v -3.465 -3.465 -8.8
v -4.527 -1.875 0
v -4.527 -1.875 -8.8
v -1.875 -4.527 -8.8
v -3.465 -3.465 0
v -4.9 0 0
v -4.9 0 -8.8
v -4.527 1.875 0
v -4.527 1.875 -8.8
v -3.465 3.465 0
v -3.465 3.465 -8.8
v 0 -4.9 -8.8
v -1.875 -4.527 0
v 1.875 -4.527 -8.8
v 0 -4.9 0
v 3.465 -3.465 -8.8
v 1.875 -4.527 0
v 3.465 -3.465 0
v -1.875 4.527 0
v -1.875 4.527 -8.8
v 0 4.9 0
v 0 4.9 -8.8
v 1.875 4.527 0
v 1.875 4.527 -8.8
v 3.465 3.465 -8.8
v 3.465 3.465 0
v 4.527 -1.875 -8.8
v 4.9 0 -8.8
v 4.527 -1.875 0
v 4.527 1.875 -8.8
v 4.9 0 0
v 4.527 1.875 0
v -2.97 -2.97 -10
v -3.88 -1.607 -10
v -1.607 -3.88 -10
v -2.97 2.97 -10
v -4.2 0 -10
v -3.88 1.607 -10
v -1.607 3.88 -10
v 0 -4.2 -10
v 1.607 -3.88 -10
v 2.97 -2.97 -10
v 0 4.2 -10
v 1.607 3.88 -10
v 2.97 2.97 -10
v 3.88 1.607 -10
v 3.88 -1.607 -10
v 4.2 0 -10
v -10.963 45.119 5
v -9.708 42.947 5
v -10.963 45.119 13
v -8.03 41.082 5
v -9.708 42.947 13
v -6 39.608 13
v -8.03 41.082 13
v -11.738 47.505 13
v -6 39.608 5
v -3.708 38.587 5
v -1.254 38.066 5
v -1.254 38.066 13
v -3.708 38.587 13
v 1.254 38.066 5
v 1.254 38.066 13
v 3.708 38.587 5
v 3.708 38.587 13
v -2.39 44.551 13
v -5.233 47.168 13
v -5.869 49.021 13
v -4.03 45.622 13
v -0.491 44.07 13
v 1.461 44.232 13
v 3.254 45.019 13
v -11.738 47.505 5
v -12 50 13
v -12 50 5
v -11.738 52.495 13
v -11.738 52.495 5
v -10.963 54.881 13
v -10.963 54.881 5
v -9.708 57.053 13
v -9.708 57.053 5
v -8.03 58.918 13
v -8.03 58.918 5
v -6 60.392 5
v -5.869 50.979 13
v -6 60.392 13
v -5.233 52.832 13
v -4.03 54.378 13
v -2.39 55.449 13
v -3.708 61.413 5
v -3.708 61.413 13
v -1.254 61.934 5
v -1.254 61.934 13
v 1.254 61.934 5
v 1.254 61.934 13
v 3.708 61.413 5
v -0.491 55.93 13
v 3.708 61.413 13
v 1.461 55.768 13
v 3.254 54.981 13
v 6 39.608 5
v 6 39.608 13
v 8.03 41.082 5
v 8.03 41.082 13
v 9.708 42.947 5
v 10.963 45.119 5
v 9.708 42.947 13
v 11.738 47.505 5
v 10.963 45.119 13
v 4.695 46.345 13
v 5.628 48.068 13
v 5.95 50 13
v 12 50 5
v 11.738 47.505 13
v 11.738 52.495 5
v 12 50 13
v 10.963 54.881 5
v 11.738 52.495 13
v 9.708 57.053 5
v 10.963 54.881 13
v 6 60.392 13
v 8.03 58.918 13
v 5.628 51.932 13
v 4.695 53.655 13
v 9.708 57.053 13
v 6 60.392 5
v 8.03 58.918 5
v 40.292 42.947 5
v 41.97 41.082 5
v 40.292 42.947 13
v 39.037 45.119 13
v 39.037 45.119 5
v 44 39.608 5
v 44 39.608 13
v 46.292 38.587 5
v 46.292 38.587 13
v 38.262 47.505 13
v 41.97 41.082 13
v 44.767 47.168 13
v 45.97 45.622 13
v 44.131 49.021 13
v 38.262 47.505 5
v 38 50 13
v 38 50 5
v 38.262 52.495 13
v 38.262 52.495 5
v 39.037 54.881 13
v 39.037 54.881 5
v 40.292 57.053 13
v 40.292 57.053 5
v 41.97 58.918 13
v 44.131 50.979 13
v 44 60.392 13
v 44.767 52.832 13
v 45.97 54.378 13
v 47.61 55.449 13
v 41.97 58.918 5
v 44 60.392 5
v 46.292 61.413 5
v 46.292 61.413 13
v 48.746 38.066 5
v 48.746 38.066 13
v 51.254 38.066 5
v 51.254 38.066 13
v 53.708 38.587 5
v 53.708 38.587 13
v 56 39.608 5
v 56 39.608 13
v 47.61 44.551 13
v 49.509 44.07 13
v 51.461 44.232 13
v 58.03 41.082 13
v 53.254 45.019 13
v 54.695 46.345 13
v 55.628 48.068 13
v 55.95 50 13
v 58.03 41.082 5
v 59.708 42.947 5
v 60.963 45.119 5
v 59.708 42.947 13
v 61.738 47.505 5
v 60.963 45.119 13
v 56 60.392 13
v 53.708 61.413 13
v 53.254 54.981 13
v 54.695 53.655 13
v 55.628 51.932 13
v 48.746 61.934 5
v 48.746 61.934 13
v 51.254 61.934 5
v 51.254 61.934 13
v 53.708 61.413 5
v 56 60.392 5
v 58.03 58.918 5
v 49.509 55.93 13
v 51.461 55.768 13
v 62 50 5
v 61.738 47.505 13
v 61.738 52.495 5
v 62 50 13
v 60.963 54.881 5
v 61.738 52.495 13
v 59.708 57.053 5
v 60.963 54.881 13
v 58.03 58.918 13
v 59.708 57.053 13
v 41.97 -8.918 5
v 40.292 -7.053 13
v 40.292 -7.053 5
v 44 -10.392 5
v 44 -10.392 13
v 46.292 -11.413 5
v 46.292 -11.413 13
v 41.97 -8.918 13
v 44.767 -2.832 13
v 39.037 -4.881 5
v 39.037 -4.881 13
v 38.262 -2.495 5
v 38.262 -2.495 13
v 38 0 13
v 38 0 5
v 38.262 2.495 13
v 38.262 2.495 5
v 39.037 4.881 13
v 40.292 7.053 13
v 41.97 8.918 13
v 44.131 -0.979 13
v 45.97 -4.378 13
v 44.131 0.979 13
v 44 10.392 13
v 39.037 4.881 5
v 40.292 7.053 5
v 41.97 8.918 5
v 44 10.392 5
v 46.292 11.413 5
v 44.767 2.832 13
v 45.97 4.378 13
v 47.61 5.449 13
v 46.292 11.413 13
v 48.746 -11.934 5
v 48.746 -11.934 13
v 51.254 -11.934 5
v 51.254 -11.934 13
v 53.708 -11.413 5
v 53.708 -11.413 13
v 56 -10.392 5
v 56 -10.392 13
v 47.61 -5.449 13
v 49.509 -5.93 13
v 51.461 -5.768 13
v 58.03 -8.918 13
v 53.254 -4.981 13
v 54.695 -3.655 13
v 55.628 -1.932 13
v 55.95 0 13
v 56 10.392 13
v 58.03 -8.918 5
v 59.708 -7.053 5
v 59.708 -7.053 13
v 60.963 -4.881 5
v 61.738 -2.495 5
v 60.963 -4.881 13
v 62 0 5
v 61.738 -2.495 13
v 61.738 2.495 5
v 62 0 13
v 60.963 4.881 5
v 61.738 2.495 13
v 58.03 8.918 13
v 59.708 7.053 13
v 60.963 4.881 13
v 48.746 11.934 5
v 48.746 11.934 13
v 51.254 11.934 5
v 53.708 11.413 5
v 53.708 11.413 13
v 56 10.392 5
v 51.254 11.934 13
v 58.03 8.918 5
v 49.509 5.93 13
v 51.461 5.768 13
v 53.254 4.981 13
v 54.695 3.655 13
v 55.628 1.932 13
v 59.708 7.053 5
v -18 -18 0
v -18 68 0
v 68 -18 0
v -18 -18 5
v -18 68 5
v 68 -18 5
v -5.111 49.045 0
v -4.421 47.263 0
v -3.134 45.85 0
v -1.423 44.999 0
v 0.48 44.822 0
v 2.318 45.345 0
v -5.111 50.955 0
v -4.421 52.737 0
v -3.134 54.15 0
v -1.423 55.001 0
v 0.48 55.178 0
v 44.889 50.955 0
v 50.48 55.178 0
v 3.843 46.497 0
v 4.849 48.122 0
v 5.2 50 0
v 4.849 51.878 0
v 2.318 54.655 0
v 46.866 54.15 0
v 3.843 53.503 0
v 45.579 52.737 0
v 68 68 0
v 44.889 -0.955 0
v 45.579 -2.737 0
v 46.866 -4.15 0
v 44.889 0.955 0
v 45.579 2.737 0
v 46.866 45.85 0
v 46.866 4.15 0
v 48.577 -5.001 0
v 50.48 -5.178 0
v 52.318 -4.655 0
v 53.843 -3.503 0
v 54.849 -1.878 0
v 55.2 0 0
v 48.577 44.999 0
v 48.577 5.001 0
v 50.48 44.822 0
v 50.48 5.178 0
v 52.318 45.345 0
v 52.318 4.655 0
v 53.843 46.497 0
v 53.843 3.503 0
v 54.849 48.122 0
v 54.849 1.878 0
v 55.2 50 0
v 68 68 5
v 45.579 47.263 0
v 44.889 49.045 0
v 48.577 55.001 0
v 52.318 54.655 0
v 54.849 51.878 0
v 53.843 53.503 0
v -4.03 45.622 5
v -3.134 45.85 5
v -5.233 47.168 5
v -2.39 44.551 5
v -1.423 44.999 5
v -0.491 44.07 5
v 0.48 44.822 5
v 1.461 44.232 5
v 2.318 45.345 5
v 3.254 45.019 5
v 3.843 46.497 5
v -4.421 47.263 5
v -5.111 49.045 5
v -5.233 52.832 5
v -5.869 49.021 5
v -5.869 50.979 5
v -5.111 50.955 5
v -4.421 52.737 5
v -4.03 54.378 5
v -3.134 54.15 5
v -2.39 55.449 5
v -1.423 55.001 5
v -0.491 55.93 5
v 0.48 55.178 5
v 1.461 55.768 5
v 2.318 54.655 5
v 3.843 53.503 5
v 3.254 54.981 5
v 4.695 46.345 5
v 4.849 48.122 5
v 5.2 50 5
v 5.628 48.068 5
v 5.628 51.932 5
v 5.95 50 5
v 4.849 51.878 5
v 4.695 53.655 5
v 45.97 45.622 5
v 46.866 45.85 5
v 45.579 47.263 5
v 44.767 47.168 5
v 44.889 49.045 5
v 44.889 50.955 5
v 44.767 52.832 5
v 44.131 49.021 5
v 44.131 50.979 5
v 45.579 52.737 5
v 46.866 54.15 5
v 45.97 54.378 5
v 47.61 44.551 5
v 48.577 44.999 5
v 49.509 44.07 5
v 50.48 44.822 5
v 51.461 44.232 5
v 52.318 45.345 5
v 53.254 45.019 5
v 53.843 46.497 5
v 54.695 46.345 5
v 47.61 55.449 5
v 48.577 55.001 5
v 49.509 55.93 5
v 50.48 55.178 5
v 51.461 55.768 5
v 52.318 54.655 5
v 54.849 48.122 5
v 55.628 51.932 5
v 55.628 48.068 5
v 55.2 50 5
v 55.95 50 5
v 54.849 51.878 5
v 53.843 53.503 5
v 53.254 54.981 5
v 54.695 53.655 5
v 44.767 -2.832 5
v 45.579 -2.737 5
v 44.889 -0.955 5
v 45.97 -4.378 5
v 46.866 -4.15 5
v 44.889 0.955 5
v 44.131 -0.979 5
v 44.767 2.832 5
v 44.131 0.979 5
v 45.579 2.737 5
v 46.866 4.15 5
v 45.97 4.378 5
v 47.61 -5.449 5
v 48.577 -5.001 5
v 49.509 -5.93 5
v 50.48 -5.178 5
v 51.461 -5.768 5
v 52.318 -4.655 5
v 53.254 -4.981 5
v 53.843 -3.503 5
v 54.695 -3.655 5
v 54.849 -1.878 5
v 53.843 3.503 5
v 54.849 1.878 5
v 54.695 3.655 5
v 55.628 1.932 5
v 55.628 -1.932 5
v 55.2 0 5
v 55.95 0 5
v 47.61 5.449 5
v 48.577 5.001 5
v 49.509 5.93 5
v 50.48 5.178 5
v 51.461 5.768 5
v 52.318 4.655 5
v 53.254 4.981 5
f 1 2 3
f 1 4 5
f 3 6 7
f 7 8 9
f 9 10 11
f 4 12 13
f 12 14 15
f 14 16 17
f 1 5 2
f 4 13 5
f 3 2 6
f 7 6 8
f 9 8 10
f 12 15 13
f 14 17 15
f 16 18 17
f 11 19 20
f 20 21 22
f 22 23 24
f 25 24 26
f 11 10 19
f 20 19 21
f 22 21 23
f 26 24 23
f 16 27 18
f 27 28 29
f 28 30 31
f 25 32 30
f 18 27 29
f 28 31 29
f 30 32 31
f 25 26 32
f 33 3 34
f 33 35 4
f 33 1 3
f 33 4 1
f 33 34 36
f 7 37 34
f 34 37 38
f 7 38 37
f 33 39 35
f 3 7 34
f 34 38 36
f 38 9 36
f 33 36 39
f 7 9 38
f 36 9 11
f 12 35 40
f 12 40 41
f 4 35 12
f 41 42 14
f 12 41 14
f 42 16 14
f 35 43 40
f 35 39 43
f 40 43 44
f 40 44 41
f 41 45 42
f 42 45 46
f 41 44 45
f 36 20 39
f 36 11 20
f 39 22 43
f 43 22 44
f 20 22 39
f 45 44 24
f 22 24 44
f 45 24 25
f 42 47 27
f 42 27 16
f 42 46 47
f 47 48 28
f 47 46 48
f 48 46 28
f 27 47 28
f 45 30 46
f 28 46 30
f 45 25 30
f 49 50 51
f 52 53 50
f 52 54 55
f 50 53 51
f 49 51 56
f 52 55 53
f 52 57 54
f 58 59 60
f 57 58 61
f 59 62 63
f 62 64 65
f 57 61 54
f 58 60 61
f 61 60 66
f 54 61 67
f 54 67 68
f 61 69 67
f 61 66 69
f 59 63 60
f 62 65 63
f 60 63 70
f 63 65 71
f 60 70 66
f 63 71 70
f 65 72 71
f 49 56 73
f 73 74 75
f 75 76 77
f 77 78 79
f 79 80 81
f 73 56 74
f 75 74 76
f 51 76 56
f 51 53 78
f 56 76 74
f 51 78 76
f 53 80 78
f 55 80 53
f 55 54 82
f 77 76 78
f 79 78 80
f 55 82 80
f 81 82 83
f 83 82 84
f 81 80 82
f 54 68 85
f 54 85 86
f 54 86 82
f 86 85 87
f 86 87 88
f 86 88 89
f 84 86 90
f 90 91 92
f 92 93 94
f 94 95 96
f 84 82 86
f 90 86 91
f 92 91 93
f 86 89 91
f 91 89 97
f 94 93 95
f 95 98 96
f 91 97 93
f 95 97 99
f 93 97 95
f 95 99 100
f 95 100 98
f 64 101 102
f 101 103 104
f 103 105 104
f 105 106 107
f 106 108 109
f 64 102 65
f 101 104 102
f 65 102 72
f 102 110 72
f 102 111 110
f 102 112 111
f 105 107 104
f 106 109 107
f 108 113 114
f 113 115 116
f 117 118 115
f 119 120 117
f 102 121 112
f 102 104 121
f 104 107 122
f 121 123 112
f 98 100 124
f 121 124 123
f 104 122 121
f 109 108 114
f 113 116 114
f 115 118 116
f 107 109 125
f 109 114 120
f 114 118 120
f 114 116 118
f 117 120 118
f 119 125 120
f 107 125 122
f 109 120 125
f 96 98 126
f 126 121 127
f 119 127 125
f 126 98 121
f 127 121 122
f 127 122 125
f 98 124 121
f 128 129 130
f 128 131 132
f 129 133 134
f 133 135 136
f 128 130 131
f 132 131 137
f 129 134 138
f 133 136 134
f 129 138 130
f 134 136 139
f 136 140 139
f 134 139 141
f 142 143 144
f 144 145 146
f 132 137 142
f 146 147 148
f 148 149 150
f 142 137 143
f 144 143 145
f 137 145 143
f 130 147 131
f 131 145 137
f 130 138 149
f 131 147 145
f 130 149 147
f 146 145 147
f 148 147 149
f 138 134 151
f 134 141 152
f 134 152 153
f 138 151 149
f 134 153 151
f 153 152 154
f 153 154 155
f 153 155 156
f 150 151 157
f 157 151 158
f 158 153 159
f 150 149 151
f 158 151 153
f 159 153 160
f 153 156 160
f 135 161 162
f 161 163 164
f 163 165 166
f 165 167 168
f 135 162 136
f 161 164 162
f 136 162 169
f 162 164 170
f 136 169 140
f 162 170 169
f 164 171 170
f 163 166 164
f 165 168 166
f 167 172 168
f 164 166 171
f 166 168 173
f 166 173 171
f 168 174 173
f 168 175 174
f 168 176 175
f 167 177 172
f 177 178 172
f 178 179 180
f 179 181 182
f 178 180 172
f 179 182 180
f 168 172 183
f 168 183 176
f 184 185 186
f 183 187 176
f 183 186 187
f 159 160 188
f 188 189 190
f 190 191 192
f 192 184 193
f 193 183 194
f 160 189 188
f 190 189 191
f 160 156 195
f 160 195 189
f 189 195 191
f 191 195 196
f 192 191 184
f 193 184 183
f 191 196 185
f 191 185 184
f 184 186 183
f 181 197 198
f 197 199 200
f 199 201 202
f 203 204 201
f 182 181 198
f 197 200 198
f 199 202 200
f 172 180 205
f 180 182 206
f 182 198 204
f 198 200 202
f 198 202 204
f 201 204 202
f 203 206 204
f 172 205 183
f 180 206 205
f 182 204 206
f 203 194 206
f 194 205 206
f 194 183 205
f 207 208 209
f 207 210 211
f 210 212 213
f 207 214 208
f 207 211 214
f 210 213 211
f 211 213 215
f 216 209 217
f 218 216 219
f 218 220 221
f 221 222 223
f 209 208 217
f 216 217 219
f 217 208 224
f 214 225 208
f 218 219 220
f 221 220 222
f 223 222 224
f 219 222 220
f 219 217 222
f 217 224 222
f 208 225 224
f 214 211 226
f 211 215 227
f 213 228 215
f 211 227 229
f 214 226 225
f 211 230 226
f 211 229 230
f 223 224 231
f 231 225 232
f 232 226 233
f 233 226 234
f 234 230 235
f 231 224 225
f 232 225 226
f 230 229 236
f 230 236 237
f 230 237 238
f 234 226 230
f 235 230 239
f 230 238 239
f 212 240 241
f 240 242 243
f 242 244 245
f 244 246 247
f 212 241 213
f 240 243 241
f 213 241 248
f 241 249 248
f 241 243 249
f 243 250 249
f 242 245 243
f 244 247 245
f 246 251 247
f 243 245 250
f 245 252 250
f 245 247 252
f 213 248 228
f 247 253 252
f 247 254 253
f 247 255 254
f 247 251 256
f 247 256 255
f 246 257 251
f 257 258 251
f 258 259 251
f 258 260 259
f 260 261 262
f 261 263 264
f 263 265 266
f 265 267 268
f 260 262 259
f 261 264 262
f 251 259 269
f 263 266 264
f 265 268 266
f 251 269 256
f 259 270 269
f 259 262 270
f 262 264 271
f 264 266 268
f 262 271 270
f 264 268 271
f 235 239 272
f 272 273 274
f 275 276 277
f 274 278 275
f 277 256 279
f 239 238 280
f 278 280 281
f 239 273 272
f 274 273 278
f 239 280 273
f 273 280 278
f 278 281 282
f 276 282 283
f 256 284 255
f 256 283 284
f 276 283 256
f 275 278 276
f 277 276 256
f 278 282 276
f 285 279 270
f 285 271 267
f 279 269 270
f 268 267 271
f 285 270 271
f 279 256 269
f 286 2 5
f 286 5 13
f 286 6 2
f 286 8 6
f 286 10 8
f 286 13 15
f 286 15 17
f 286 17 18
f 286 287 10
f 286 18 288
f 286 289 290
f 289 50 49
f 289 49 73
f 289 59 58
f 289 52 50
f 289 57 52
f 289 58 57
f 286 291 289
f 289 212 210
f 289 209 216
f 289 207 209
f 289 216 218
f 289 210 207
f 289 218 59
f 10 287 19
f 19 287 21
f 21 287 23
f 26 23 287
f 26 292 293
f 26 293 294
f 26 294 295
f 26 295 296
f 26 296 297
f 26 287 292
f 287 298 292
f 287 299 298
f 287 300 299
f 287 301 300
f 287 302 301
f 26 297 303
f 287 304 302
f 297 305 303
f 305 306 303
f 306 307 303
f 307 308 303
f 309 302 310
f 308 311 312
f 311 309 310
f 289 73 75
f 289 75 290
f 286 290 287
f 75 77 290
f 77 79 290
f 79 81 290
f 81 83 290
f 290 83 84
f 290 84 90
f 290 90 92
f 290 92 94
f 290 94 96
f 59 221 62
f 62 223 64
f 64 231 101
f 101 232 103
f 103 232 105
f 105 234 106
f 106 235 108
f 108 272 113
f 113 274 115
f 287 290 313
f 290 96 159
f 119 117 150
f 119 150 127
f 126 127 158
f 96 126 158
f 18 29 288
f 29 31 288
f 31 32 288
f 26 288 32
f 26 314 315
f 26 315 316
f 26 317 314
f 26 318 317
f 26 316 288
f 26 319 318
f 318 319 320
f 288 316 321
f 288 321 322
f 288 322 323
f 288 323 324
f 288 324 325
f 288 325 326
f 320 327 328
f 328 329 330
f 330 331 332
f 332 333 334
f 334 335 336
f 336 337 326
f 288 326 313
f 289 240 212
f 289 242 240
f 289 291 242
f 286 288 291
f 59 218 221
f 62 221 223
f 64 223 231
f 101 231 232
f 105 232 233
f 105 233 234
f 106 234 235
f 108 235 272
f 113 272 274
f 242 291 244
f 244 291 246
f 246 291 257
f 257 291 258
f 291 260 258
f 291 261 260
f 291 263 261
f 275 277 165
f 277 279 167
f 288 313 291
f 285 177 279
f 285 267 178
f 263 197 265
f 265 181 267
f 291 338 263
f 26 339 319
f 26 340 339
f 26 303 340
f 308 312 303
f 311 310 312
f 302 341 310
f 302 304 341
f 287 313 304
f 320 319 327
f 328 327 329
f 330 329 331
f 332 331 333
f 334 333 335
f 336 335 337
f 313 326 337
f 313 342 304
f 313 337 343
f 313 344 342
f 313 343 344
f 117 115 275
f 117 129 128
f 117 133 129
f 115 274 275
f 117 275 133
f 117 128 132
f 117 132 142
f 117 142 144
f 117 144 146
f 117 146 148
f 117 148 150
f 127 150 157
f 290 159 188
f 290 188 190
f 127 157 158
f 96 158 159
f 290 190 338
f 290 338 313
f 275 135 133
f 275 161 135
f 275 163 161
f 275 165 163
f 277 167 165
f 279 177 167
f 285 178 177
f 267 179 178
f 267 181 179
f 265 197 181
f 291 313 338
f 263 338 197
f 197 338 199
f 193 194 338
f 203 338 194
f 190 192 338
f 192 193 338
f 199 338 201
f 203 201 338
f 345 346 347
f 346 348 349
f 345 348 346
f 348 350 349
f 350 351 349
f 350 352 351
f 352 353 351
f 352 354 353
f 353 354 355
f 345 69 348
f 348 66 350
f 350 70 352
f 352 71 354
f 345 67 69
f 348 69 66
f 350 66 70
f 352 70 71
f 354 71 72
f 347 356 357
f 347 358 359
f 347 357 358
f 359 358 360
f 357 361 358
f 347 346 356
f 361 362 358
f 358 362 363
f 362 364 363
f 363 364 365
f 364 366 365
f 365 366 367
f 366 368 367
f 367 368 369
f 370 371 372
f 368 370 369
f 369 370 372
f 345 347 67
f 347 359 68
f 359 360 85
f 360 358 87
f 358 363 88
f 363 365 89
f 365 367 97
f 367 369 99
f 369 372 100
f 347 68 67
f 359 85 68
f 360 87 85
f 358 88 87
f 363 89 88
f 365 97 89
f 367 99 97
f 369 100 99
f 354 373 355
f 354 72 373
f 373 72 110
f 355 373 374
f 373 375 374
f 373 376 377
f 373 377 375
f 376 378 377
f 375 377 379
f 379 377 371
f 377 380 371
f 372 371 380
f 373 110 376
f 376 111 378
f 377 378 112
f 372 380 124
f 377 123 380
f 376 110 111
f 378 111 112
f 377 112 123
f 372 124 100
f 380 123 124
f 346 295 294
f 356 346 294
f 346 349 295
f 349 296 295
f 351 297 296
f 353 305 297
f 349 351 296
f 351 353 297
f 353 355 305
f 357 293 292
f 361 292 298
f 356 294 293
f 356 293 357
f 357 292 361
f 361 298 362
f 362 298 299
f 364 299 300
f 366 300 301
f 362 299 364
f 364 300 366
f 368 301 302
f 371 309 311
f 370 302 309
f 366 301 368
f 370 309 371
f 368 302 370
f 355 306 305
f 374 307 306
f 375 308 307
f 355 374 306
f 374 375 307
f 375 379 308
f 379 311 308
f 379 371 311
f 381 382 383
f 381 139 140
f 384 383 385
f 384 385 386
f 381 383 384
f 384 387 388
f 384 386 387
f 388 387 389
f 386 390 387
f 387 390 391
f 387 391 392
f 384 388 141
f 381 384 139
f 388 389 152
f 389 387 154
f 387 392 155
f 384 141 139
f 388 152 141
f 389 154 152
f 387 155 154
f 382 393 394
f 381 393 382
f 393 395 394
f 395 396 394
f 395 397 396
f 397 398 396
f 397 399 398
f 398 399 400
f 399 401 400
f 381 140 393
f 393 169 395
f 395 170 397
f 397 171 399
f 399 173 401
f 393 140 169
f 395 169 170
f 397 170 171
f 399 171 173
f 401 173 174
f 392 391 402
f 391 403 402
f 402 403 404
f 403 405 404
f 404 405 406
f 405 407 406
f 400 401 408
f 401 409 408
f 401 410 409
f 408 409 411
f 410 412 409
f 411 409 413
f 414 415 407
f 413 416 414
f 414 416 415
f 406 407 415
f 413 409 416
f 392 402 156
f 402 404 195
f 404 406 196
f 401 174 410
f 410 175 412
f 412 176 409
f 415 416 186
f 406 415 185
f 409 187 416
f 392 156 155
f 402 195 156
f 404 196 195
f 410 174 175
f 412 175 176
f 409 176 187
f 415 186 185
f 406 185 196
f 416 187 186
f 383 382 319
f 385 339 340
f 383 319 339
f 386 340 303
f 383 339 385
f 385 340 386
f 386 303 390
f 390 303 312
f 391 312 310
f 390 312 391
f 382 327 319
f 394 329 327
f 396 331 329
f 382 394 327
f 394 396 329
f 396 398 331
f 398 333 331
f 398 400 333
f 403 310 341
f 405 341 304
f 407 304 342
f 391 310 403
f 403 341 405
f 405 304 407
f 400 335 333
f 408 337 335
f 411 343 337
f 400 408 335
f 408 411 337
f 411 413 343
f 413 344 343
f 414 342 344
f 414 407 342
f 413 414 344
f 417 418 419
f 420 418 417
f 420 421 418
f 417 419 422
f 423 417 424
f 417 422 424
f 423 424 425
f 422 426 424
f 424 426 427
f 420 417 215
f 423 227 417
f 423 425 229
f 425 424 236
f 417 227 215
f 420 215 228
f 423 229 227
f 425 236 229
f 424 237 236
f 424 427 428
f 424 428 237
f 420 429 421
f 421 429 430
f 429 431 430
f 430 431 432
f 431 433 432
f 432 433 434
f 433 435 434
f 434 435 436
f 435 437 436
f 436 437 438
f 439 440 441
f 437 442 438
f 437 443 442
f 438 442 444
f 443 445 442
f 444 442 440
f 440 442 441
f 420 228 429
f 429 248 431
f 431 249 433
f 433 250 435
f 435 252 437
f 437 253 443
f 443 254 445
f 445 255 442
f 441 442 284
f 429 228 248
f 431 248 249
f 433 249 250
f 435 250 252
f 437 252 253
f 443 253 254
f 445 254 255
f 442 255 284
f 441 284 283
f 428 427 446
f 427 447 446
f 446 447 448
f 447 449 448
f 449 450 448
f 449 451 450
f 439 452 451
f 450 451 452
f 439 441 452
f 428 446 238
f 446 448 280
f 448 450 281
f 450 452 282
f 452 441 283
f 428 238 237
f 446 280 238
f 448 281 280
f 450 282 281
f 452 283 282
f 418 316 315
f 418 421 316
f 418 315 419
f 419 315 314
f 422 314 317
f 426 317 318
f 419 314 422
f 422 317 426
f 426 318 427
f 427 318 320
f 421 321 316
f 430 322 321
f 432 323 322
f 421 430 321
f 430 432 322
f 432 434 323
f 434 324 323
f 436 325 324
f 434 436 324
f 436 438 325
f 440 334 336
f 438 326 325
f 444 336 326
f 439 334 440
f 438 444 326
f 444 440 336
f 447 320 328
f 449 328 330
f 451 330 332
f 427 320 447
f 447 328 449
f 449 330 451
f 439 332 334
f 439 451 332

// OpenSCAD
// ============================================================================
//  ROW SEEDER — creates the two seed holes that start each new row/column
//  For drilling the hole grid of an 18mm plywood pegboard panel.
//
//  Pattern assumed: 10mm holes on a 50mm grid.
//
//  Coordinate convention (matches the other jigs in this folder):
//    - Panel top surface  = z = 0
//    - The seeder's locating pin sits at local (0, 0) and drops into a hole
//      that is ALREADY drilled. The three guide positions are relative to it:
//
//          A = (0,  +pitch)      row mode:  left seed of the new row
//          B = (+pitch, +pitch)  BOTH modes: diagonal seed
//          C = (+pitch, 0)       column mode: lower seed of the new column
//
//    Row-major use:    bushes in A + B  -> drills the seed pair for a new row
//    Column-major use: bushes in B + C  -> drills the seed pair for a new col
//    (all three positions have bush seats; the unused one just sits idle)
//
//  How it works:
//    - After a row is finished, the hole directly "above" the seeder pin
//      (previous row, same column) already exists. Drop the pin in it and the
//      two guides land exactly on the next row's first two grid positions.
//    - No measuring, no edge fences — the pin IS the reference.
//    - Rotate the seeder 180 deg to seed rows in the opposite direction.
//
//  PRINT: FLIP the part upside-down before slicing so the pin points UP —
//  it then prints last as a clean vertical post. No supports needed.
// ============================================================================

// ------------------------- PATTERN -------------------------
pitch  = 50;   // [mm] hole grid spacing
hole_d = 10;   // [mm] drilled hole / bit size (for reference)

// --------------------- LOCATING PIN (underside) --------------------
pin_d      = 9.8;  // [mm] pin diameter — snug in a 10mm hole
pin_len    = 10;   // [mm] pin engagement depth below the base
pin_embed  = 3;    // [mm] pin root embedded inside the base
chamfer_h  = 1.2;  // [mm] lead-in chamfer height at the pin tip
chamfer_d  = 0.7;  // [mm] radial chamfer size at the pin tip

// --------------------- DRILL GUIDES / METAL BUSH --------------------
bush_od     = 12;    // [mm] bush outside diameter (reference only)
bush_hole_d = 11.9;  // [mm] seat diameter — press fit into PLA/PETG
bit_clear_d = 10.4;  // [mm] bit clearance hole (0.2mm/side)
bush_seat_h = 8;     // [mm] counterbore depth inside the boss
boss_od     = 24;    // [mm] boss diameter around each guide
boss_h      = 8;     // [mm] boss height above the base

// ------------------------------ BODY -------------------------------
base_t  = 5;                          // [mm] base plate thickness
margin  = boss_od / 2 + 6;            // [mm] plate margin around features
plate_x0 = -margin;                   // plate extent (pin sits at 0,0)
plate_x1 = pitch + margin;
plate_y0 = -margin;
plate_y1 = pitch + margin;

// ---------------------------- COMPUTED -----------------------------
// guide stations relative to the pin at (0,0)
A = [0,        pitch];
B = [pitch,    pitch];
C = [pitch,    0];
guide_pts = [A, B, C];

assert(pin_d < hole_d, "pin must be smaller than the drilled holes");
assert(bush_hole_d > bit_clear_d, "bush seat must be larger than bit clearance");
assert(bush_seat_h <= boss_h, "bush seat deeper than boss");

module locating_pin(x, y) {
    // shaft: z from -pin_len + chamfer_h up to +pin_embed
    translate([x, y, -pin_len + chamfer_h])
        cylinder(d = pin_d, h = pin_len + pin_embed - chamfer_h);
    // lead-in chamfer: z from -pin_len up to -pin_len + chamfer_h
    translate([x, y, -pin_len])
        cylinder(d1 = pin_d - 2 * chamfer_d, d2 = pin_d, h = chamfer_h);
}

module row_seeder() {
    difference() {
        union() {
            // ---- base plate ----
            translate([plate_x0, plate_y0, 0])
                cube([plate_x1 - plate_x0, plate_y1 - plate_y0, base_t]);

            // ---- locating pin (point down into the reference hole) ----
            locating_pin(0, 0);

            // ---- guide bosses ----
            for (g = guide_pts)
                translate([g[0], g[1], base_t])
                    cylinder(d = boss_od, h = boss_h);
        }

        // ---- stepped guide holes: bush seat on top, bit clearance below ----
        for (g = guide_pts) {
            translate([g[0], g[1], base_t + boss_h - bush_seat_h])
                cylinder(d = bush_hole_d, h = bush_seat_h + 0.02);
            translate([g[0], g[1], -0.01])
                cylinder(d = bit_clear_d, h = base_t + boss_h + 0.02);
        }
    }
}

row_seeder();
